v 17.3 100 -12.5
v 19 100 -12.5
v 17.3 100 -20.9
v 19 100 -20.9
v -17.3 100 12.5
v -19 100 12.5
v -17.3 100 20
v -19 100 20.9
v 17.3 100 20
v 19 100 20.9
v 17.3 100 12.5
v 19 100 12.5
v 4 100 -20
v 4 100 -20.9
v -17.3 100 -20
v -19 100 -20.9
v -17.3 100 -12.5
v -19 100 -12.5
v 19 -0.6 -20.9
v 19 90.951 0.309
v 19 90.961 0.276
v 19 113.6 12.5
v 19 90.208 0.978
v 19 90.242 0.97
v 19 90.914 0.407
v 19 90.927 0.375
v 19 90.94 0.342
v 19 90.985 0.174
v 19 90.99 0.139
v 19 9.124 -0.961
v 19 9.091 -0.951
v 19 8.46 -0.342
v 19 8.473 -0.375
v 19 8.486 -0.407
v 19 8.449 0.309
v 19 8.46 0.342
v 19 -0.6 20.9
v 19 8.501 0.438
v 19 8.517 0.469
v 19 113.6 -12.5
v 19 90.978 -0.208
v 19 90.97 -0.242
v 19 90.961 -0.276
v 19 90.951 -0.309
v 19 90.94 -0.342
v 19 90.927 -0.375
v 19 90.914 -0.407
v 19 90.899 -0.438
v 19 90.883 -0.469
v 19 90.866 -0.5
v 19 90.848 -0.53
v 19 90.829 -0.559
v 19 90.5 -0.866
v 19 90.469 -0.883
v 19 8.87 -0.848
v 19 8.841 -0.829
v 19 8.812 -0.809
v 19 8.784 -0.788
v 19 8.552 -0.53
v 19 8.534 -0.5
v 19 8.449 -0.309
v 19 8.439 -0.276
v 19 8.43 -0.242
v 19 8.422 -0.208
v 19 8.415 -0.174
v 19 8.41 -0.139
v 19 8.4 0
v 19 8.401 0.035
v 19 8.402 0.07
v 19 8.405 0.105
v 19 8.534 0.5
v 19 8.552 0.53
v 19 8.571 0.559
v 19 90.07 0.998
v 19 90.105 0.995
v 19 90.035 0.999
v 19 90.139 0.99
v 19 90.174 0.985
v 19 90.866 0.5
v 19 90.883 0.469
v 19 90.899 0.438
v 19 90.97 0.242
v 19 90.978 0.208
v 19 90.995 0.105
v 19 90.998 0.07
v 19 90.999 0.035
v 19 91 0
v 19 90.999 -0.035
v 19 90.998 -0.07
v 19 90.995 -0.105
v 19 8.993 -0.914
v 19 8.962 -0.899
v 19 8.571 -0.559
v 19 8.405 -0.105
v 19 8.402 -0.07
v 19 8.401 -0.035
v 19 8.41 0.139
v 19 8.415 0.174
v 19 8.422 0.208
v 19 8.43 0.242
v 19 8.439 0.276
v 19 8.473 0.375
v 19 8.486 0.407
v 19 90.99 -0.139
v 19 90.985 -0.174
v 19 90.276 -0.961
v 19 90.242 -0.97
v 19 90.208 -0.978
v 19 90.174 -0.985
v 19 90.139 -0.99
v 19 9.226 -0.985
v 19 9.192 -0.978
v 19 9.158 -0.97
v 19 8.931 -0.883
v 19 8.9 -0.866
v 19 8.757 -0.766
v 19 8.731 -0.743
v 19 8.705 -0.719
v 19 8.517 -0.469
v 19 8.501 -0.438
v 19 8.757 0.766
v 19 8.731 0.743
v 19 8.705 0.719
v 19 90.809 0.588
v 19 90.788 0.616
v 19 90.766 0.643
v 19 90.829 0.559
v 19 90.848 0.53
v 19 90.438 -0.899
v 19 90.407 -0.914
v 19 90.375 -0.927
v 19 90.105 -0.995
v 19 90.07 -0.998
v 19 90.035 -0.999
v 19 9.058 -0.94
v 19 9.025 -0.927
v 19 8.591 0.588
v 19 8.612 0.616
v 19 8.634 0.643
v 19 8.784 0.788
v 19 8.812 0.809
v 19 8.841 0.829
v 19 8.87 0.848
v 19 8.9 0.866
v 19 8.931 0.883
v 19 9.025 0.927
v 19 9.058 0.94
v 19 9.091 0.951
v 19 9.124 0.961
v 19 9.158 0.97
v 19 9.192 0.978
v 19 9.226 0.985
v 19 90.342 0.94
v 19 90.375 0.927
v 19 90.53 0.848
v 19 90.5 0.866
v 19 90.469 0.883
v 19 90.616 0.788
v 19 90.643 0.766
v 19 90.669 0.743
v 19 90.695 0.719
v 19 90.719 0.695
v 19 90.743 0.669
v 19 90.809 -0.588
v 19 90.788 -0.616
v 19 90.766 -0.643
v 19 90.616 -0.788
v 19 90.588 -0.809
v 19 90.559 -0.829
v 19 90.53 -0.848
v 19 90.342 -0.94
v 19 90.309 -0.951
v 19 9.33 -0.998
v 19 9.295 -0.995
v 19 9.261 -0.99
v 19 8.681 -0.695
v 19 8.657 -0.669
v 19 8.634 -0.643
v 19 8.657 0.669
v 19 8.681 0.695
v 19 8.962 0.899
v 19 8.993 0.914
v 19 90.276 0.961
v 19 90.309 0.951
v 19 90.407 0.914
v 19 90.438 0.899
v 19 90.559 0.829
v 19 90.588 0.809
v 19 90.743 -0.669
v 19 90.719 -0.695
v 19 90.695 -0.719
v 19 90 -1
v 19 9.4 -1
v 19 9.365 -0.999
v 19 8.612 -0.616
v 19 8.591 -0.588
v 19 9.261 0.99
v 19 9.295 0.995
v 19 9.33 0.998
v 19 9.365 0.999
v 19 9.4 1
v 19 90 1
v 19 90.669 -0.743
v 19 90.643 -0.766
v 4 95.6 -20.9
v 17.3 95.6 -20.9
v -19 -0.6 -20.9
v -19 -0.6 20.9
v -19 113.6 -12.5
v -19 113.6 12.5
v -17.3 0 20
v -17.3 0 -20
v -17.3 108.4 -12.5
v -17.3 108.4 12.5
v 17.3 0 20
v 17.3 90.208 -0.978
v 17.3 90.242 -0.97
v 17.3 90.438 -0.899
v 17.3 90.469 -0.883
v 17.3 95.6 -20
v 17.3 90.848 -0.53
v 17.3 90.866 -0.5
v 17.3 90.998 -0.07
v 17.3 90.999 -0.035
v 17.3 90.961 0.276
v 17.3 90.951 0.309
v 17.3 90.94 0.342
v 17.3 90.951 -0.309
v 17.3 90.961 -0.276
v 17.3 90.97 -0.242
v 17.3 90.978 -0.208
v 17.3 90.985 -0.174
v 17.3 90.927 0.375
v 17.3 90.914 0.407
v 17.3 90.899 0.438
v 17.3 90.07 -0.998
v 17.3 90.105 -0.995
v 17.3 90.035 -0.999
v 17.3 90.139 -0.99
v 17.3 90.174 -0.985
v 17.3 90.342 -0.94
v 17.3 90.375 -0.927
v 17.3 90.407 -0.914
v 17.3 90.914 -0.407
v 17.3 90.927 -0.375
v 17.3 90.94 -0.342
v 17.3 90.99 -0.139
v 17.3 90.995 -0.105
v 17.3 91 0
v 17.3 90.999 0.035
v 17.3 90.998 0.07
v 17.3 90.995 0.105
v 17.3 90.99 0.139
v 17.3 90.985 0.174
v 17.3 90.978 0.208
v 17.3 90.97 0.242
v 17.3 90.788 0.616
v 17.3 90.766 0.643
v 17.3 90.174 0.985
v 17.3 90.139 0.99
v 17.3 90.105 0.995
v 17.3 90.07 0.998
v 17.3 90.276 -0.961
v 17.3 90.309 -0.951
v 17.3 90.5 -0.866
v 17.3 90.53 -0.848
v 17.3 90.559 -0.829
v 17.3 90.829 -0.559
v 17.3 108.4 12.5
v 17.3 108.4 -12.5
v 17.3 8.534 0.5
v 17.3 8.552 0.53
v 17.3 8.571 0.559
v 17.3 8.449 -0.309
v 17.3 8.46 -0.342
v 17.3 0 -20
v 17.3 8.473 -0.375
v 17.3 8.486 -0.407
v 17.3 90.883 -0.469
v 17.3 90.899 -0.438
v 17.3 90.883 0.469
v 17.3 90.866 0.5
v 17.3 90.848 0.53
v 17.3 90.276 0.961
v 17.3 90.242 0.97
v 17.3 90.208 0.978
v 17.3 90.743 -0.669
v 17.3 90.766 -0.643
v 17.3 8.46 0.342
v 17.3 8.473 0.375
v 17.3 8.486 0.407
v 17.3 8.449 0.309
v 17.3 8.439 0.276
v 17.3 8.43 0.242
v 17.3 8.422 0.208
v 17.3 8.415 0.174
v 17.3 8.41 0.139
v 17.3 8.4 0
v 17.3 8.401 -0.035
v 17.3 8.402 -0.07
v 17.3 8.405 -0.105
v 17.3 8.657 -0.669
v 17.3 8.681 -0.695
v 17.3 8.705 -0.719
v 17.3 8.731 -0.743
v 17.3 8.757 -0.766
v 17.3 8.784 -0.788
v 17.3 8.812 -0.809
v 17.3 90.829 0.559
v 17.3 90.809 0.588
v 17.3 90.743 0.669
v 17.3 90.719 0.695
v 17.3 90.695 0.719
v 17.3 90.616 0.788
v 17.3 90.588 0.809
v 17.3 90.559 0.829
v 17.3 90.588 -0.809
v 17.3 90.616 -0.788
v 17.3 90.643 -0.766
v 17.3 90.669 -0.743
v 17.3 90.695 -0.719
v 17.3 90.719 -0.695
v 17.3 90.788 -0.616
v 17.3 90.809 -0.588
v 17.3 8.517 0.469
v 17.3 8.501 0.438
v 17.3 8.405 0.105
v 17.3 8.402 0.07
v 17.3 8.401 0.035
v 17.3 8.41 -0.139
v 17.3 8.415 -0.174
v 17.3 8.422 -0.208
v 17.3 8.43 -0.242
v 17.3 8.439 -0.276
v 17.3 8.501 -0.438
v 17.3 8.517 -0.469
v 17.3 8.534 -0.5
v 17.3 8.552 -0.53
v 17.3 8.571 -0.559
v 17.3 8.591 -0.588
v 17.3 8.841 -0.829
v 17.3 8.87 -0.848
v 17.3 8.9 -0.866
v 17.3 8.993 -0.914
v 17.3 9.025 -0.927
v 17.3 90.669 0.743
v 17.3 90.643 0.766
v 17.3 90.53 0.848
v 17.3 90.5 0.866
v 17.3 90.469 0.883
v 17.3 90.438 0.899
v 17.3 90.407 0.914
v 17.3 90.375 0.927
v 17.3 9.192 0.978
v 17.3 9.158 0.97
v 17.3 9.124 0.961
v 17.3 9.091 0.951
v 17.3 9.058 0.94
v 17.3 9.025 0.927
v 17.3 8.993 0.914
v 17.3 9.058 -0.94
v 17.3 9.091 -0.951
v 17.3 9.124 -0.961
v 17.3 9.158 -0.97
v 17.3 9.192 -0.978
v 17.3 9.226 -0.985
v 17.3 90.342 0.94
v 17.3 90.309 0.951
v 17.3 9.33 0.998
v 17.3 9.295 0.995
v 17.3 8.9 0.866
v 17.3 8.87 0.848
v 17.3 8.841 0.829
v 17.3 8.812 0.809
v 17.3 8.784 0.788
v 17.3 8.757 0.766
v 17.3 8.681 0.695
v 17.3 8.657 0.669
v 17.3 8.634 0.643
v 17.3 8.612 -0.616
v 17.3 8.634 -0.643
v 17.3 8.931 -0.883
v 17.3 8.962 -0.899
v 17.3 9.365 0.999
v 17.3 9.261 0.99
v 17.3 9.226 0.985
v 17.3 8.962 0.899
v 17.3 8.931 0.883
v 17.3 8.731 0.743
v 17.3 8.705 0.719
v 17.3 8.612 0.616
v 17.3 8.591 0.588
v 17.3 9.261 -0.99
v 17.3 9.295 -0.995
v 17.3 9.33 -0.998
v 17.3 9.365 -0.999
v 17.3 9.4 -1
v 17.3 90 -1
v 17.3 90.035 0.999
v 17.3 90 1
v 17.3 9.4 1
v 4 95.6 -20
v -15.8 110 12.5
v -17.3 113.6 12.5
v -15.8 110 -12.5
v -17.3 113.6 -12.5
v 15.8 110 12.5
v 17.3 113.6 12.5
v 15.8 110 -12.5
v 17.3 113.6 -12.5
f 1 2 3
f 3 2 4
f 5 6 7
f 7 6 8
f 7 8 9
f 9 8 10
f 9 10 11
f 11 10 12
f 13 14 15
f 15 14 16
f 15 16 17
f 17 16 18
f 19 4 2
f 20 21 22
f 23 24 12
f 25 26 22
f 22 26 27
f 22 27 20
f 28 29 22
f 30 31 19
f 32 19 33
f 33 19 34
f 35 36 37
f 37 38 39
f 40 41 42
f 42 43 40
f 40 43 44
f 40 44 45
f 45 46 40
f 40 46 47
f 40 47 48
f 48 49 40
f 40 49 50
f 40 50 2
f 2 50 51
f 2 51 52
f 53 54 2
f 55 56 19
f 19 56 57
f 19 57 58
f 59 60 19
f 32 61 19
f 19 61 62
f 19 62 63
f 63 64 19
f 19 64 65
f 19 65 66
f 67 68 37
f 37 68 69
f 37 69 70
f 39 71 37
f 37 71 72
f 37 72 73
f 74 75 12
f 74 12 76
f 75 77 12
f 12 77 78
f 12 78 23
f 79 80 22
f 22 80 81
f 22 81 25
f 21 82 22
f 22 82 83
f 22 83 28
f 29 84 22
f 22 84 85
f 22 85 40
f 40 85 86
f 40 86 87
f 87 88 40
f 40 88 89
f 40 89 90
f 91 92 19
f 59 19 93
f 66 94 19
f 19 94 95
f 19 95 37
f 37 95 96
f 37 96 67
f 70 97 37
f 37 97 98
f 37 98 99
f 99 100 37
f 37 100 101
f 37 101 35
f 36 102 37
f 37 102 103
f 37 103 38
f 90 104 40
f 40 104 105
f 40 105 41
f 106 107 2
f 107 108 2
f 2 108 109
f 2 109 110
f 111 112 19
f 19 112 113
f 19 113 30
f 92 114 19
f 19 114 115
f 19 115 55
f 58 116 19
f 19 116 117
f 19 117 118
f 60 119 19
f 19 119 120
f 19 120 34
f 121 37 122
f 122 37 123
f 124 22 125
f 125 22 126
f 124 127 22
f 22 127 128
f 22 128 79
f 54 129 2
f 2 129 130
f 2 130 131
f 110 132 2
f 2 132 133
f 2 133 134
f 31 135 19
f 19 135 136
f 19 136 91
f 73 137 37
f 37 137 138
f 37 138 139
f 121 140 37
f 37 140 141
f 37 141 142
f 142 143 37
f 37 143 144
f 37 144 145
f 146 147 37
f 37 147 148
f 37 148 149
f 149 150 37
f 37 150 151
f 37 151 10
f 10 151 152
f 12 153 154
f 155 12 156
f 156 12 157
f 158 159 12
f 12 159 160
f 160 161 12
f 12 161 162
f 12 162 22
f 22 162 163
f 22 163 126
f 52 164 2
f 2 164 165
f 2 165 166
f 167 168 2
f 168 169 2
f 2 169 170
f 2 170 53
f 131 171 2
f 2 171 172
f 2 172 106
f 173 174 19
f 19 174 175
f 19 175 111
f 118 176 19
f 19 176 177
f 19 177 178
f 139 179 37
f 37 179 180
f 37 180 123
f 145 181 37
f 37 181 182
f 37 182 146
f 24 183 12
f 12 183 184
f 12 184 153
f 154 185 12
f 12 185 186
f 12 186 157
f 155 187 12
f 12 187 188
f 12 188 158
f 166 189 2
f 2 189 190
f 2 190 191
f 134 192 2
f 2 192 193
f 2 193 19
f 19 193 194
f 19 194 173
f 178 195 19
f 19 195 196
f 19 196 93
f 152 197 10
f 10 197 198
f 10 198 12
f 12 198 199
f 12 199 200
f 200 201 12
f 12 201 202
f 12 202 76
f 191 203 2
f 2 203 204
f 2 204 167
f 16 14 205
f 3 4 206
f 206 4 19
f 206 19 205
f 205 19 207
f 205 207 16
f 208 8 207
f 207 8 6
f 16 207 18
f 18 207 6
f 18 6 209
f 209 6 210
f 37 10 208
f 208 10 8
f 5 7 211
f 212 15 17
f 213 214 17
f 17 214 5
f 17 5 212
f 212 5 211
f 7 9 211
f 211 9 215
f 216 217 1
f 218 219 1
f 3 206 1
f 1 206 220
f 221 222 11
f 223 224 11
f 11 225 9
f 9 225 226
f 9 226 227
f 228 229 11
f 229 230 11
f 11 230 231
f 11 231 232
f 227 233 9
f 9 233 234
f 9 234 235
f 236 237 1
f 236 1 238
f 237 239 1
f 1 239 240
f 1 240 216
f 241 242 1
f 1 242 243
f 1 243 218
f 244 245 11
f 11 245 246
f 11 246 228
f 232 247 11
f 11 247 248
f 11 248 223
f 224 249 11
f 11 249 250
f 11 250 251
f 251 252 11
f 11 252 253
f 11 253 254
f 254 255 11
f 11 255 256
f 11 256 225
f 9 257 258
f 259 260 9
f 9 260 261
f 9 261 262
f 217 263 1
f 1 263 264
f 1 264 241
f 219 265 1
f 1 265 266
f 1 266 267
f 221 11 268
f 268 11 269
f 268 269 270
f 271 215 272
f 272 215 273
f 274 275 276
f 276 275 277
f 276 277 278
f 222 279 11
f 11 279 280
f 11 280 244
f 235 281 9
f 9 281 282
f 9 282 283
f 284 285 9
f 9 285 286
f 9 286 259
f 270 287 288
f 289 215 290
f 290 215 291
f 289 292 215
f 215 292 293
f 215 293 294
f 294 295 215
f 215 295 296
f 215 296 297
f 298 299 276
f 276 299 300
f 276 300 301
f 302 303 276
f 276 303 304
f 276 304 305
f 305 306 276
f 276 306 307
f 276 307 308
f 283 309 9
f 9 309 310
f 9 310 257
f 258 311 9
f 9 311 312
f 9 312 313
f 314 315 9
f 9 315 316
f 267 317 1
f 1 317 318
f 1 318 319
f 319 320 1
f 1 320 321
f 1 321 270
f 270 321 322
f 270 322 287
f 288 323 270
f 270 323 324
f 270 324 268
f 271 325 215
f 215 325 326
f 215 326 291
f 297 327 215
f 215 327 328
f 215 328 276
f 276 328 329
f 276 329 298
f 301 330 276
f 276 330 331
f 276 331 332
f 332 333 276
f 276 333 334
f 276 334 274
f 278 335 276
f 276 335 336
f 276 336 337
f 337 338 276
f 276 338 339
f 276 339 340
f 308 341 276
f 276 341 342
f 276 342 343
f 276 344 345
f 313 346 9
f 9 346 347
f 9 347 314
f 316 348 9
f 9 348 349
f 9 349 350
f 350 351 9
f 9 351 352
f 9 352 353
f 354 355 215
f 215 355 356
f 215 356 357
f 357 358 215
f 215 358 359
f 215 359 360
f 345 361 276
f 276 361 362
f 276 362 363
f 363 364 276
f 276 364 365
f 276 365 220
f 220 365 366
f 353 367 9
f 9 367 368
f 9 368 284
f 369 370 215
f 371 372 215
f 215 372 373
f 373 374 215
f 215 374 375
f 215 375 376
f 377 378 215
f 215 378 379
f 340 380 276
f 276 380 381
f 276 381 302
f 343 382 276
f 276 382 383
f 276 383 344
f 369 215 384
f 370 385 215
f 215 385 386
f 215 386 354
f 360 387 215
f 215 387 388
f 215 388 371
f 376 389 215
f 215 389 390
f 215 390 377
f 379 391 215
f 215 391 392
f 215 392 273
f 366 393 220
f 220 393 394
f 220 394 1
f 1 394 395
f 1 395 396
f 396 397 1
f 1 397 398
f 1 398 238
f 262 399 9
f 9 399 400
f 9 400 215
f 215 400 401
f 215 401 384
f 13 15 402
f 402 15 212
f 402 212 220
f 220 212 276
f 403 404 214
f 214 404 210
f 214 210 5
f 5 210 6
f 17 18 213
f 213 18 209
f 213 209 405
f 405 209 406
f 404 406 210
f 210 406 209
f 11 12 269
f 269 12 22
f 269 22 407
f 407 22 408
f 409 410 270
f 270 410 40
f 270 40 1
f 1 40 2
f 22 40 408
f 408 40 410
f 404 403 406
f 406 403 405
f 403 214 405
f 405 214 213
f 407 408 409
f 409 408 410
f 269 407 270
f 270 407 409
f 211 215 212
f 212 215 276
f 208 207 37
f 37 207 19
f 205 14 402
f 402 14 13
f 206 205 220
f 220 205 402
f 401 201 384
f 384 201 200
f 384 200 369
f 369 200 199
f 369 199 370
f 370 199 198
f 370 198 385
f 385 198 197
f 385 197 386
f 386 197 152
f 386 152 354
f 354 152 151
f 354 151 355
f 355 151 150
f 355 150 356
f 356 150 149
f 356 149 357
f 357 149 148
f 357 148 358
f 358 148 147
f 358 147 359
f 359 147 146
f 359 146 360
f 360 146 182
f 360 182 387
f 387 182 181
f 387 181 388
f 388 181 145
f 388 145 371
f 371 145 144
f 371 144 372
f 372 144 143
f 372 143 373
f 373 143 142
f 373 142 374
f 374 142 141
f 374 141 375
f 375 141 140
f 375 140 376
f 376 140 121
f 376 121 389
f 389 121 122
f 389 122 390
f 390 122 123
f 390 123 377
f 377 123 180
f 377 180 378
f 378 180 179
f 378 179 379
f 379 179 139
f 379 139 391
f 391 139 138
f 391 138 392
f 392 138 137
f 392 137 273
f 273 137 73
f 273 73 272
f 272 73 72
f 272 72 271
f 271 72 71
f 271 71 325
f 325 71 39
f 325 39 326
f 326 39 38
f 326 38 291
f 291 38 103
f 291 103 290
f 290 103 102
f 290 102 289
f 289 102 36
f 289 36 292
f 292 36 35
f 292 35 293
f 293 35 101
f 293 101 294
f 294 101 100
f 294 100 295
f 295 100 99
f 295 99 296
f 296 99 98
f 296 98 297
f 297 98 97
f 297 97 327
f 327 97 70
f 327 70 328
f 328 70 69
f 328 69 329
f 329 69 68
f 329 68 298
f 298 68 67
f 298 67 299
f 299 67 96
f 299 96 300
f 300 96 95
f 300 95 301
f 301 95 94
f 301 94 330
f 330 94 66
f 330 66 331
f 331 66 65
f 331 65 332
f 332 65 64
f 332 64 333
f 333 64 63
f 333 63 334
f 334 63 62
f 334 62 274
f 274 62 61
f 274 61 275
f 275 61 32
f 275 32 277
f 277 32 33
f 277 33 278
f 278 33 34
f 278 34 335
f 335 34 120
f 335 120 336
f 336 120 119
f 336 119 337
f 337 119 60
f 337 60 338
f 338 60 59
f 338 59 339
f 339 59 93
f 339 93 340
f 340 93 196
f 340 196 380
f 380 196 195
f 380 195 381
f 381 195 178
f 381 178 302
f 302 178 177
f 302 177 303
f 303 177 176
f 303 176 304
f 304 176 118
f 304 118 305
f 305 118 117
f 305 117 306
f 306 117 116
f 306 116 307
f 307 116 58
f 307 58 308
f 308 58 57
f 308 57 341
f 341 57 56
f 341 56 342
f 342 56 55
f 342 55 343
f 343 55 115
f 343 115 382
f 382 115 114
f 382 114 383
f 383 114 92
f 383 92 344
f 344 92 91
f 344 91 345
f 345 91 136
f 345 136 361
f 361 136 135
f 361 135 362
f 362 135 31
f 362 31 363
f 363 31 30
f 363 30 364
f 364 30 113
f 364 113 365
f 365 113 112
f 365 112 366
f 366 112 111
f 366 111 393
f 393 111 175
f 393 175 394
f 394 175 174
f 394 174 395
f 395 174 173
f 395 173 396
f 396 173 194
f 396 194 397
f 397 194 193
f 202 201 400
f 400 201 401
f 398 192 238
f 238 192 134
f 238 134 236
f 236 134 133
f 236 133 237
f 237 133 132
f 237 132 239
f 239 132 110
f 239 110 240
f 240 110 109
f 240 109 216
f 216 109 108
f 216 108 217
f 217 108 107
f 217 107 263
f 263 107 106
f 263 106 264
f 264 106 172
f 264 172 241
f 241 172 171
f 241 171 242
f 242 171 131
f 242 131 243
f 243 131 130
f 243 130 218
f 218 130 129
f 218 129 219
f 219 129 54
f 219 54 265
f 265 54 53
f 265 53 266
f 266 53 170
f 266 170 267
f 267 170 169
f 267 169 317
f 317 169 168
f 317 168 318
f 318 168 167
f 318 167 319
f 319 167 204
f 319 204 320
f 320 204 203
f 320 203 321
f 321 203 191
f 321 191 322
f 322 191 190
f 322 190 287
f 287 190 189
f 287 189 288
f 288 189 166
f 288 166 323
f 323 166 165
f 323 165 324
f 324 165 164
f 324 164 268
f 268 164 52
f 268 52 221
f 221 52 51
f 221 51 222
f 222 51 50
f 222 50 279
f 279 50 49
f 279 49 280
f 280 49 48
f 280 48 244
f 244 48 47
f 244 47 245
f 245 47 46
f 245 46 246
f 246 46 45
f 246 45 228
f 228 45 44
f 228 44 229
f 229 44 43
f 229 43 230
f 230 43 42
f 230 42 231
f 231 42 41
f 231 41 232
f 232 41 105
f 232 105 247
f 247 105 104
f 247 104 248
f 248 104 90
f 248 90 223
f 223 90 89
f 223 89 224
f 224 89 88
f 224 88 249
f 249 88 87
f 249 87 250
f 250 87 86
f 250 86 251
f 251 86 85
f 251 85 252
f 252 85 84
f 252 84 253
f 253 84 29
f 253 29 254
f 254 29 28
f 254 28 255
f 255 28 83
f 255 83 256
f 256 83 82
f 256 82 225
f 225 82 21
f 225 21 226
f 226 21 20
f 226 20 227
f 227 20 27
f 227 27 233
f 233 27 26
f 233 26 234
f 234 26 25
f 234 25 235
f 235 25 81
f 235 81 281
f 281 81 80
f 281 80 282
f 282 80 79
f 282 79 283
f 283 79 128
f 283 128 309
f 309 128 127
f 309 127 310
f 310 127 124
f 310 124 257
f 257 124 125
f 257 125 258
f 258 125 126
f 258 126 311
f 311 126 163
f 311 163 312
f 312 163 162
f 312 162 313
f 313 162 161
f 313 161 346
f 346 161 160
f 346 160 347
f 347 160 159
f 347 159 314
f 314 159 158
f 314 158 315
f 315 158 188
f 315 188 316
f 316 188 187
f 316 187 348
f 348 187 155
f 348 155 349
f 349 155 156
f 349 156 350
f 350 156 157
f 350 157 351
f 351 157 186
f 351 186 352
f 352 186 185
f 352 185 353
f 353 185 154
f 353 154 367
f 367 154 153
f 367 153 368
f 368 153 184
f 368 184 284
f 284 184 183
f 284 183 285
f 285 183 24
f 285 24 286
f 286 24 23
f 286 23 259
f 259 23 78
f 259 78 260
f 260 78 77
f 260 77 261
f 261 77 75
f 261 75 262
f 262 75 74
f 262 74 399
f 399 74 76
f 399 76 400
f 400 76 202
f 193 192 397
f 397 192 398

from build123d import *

# Parameters (mm, degrees)
SKETCH1_W           = 38
SKETCH1_H           = 41.8
SKETCH1_W_2         = 34.6
SKETCH1_H_2         = 40
BOSS_EXTRUDE1_DEPTH = 100
SKETCH2_W           = 1.7
SKETCH2_H           = 25
BOSS_EXTRUDE2_DEPTH = 13.6
BOSS_EXTRUDE5_DEPTH = 25
SKETCH6_W           = 38
SKETCH6_H           = 41.8
BOSS_EXTRUDE6_DEPTH = 0.6
SKETCH7_W           = 13.3
SKETCH7_H           = 4.4
CUT_EXTRUDE1_DEPTH  = 10
CUT_EXTRUDE2_DEPTH  = 10


with BuildPart() as part:
    # Sketch1 → Boss-Extrude1 (new body)
    with BuildSketch(Plane(origin=(0, 0, 0), x_dir=(1, 0, 0), z_dir=(0, 1, 0))):
        Rectangle(SKETCH1_W, SKETCH1_H)
        Rectangle(SKETCH1_W_2, SKETCH1_H_2, mode=Mode.SUBTRACT)
    extrude(amount=BOSS_EXTRUDE1_DEPTH)

    # Sketch2 → Boss-Extrude2 (add)
    with BuildSketch(Plane(origin=(0, 100, 0), x_dir=(1, 0, 0), z_dir=(0, 1, 0))):
        with Locations((18.15, 0)):
            Rectangle(SKETCH2_W, SKETCH2_H)
        with Locations((-18.15, 0)):
            Rectangle(SKETCH2_W, SKETCH2_H)
    extrude(amount=BOSS_EXTRUDE2_DEPTH)

    # Sketch5 → Boss-Extrude5 (add)
    with BuildSketch(Plane.XY.offset(12.5)):
        Polygon((-15.8, 110), (-17.3, 108.4), (-17.3, 113.6), align=None)
        Polygon((17.3, 108.4), (17.3, 113.6), (15.8, 110), align=None)
    extrude(amount=-BOSS_EXTRUDE5_DEPTH)

    # Sketch6 → Boss-Extrude6 (add)
    with BuildSketch(Plane.XZ):
        Rectangle(SKETCH6_W, SKETCH6_H)
    extrude(amount=BOSS_EXTRUDE6_DEPTH)

    # Sketch7 → Cut-Extrude1 (cut)
    with BuildSketch(Plane(origin=(0, 0, -20.9), x_dir=(-1, 0, 0), z_dir=(0, 0, -1))):
        with Locations((-10.65, 97.8)):
            Rectangle(SKETCH7_W, SKETCH7_H)
    extrude(amount=-CUT_EXTRUDE1_DEPTH, mode=Mode.SUBTRACT)

    # Sketch8 → Cut-Extrude2 (cut)
    with BuildSketch(Plane(origin=(19, 0, 0), x_dir=(0, 0, -1), z_dir=(1, 0, 0))):
        with BuildLine():
            Line((-1, 9.4), (-1, 90))
            ThreePointArc((-1, 90), (0, 91), (1, 90))
            Line((1, 90), (1, 9.4))
            ThreePointArc((1, 9.4), (0, 8.4), (-1, 9.4))
        make_face()
    extrude(amount=-CUT_EXTRUDE2_DEPTH, mode=Mode.SUBTRACT)


solid = part.part
